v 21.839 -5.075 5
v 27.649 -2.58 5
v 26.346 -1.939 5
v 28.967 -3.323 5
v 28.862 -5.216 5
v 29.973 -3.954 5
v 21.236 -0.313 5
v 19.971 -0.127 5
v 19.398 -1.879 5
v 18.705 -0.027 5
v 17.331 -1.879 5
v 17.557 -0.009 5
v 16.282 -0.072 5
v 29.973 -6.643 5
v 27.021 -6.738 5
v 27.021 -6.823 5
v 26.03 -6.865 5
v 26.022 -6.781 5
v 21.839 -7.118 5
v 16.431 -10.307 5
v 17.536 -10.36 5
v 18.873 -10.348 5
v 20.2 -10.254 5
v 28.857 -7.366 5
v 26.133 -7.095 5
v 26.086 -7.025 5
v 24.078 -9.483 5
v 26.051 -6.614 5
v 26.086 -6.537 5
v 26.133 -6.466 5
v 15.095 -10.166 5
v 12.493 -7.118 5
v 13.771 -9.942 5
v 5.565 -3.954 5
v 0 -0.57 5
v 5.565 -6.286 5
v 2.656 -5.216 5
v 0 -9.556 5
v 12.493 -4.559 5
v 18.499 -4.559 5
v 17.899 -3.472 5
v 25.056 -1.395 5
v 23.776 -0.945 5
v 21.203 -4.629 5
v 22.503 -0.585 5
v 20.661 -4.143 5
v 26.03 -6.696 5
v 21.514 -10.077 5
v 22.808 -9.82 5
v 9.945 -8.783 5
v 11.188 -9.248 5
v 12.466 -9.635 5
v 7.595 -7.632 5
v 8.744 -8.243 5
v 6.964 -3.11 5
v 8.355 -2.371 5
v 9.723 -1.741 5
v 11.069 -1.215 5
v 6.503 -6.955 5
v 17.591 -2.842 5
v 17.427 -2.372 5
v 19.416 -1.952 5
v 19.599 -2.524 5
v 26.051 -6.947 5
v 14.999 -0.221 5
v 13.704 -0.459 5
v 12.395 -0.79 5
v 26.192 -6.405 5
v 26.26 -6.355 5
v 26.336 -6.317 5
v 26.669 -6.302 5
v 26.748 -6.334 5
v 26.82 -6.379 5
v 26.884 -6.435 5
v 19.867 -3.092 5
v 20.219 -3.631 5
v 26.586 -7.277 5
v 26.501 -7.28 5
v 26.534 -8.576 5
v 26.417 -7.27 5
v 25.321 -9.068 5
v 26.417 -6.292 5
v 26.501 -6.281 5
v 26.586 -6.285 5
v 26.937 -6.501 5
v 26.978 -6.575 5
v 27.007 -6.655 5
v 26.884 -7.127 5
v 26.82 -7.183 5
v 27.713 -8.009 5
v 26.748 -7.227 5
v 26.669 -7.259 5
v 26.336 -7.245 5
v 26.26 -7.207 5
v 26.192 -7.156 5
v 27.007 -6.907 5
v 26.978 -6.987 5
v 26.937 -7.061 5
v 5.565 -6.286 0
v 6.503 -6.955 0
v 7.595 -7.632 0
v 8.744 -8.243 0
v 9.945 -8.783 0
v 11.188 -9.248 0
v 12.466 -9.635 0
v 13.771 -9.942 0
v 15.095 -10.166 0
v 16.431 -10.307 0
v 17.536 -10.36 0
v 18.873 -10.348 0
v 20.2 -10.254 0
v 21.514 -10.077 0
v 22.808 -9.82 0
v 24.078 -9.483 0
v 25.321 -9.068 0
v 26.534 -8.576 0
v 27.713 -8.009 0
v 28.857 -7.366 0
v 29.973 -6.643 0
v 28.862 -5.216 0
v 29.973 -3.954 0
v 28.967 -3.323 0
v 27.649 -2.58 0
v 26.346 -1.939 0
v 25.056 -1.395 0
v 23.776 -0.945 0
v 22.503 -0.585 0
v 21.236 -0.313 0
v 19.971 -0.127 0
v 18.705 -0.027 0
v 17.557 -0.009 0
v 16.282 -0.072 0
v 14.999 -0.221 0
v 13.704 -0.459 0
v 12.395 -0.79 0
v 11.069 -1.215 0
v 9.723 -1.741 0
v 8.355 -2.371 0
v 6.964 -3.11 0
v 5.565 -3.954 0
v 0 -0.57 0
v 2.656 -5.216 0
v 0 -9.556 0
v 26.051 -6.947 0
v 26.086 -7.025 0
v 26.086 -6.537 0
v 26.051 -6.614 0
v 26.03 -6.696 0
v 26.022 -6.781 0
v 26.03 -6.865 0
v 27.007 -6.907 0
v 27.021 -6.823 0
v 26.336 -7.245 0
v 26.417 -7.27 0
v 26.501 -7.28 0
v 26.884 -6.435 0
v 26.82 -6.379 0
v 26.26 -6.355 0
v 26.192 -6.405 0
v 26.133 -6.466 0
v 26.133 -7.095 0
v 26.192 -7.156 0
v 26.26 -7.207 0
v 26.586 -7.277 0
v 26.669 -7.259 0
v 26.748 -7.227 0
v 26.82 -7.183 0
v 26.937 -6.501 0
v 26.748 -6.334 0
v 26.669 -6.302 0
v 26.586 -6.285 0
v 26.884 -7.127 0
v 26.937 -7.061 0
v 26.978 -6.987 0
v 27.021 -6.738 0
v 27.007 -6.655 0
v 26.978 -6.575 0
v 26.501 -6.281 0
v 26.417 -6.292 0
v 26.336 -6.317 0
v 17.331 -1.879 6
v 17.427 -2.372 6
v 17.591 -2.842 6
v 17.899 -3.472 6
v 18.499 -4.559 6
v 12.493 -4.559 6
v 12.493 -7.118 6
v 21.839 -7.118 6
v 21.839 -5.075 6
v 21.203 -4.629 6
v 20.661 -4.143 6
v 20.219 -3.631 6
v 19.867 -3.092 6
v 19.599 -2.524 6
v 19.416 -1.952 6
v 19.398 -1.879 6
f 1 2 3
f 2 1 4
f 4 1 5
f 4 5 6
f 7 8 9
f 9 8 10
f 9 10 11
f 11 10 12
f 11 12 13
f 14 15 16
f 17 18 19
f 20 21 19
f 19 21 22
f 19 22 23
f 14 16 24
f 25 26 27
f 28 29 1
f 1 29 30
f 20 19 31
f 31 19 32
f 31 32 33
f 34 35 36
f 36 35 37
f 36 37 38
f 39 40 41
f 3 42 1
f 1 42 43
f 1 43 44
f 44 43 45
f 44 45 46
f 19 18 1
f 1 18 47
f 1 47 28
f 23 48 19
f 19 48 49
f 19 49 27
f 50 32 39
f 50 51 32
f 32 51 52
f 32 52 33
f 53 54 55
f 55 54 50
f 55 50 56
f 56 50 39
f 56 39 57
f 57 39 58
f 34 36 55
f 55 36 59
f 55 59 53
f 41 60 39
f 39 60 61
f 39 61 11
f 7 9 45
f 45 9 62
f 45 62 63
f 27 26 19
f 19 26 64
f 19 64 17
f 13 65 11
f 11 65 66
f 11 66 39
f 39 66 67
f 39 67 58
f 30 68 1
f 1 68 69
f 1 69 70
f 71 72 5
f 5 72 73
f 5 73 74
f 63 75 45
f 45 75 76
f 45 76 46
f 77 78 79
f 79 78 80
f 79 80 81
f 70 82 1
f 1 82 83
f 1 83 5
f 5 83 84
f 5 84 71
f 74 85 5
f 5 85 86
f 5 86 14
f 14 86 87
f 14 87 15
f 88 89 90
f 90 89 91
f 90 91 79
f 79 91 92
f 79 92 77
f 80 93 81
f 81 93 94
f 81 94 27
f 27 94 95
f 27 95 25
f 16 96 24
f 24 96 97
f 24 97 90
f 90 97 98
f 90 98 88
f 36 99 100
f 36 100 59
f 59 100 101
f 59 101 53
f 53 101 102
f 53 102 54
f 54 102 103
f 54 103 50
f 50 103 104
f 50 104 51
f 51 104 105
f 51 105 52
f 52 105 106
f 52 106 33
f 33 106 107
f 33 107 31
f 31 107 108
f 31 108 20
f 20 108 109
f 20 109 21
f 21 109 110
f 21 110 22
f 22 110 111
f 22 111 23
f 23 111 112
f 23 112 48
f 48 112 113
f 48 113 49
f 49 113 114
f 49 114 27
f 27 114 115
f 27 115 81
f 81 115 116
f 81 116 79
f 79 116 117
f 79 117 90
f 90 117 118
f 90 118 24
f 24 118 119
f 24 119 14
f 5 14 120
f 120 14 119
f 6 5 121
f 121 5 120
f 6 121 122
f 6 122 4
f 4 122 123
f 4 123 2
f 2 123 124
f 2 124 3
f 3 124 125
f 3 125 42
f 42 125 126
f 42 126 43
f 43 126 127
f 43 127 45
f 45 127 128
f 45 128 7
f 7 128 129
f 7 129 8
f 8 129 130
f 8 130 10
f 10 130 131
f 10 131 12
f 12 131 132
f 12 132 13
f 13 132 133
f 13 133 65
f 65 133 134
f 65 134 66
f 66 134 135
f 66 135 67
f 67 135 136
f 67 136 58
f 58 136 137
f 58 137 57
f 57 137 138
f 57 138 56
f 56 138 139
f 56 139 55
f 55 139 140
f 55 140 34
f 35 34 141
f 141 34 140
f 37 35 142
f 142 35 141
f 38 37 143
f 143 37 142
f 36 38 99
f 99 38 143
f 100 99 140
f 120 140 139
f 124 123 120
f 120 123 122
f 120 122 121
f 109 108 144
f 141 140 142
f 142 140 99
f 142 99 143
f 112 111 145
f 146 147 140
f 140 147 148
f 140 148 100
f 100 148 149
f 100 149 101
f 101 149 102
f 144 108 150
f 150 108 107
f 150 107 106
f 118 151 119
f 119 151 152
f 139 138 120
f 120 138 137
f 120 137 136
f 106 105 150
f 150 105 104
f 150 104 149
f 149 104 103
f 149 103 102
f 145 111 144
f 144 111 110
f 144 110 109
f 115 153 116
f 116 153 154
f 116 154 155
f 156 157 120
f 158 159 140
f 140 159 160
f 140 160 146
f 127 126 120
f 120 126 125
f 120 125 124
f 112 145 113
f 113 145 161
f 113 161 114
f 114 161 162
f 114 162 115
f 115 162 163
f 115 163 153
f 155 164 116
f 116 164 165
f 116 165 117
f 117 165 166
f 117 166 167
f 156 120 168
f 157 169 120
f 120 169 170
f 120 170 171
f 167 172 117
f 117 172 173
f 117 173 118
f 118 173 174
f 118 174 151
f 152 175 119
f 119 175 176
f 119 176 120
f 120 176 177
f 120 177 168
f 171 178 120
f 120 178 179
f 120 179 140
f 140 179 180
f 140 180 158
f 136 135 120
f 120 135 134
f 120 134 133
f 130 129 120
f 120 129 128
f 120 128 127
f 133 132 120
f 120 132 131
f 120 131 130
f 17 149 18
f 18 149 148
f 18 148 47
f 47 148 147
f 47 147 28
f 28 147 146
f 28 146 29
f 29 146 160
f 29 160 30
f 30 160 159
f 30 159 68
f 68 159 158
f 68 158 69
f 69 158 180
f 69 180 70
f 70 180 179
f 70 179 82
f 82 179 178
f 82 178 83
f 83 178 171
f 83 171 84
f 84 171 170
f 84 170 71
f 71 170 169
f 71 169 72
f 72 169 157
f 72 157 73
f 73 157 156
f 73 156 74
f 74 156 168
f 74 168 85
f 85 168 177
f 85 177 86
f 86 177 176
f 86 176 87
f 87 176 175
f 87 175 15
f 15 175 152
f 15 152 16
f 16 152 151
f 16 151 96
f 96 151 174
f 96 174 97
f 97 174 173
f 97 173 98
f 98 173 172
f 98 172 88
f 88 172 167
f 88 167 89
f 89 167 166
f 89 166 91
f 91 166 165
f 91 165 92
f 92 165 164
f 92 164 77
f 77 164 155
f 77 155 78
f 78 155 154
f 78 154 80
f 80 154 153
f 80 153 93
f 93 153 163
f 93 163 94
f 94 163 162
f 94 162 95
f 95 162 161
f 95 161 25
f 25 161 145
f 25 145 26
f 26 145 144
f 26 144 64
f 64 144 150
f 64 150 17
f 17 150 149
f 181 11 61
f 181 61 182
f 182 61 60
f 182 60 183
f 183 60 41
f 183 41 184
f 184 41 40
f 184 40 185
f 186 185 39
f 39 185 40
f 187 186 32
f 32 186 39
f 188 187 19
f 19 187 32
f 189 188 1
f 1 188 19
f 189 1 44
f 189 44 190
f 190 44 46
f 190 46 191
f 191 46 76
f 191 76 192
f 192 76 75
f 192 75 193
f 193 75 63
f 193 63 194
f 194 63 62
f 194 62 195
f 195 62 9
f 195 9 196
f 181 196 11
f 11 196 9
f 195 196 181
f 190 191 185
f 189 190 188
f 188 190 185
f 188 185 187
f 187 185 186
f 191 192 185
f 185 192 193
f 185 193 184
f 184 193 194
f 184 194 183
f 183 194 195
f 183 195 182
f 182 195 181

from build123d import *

# Parameters (mm, degrees)
SKETCH2_R           = 0.500109693
BOSS_EXTRUDE1_DEPTH = 5
BOSS_EXTRUDE2_DEPTH = 1


with BuildPart() as part:
    # Sketch2 → Boss-Extrude1 (new body)
    with BuildSketch(Plane(origin=(0, 0, 0), x_dir=(1, 0, 0), z_dir=(0, 0, -1))):
        with BuildLine():
            Line((29.97295835, 6.642737104), (28.862437793, 5.215722686))
            Line((28.862437793, 5.215722686), (29.97295835, 3.953817374))
            add(Edge.make_bspline(
                [(5.565346412, 3.953817374), (17.919076804, -3.939717318), (29.97295835, 3.953817374)],
                knots=[0, 0, 0, 1, 1, 1], degree=2))
            Line((5.565346412, 3.953817374), (0, 0.570103483))
            Line((0, 0.570103483), (2.65645961, 5.215722686))
            Line((2.65645961, 5.215722686), (0, 9.556126627))
            Line((0, 9.556126627), (5.565346412, 6.285726684))
            add(Edge.make_bspline(
                [(5.565346412, 6.285726684), (12.037313538, 11.217277608), (22.14175538, 12.07873787), (29.97295835, 6.642737104)],
                knots=[0, 0, 0, 0, 1, 1, 1, 1], degree=3))
        make_face()
        with Locations(Location((26.5225963, 6.780666166, 0), (0, 0, 180))):
            Circle(SKETCH2_R, mode=Mode.SUBTRACT)
    extrude(amount=-BOSS_EXTRUDE1_DEPTH)

    # Sketch4 → Boss-Extrude2 (add)
    with BuildSketch(Plane(origin=(0, 0, 5), x_dir=(-1, 0, 0), z_dir=(0, 0, 1))):
        with BuildLine():
            Line((-17.330711562, 1.879075557), (-19.398244519, 1.879075557))
            add(Edge.make_bspline(
                [(-19.398244519, 1.879075557), (-19.857893705, 3.836469275), (-21.838627479, 5.07519839)],
                knots=[0, 0, 0, 1, 1, 1], degree=2))
            Line((-21.838627479, 5.07519839), (-21.838627479, 7.118264722))
            Line((-21.838627479, 7.118264722), (-12.493271281, 7.118264722))
            Line((-12.493271281, 7.118264722), (-12.493271281, 4.559250574))
            Line((-12.493271281, 4.559250574), (-18.4990791, 4.559250574))
            add(Edge.make_bspline(
                [(-18.4990791, 4.559250574), (-18.040909727, 3.659817697), (-17.443363766, 2.880283759), (-17.330711562, 1.879075557)],
                knots=[0, 0, 0, 0, 1, 1, 1, 1], degree=3))
        make_face()
    extrude(amount=BOSS_EXTRUDE2_DEPTH)


solid = part.part
